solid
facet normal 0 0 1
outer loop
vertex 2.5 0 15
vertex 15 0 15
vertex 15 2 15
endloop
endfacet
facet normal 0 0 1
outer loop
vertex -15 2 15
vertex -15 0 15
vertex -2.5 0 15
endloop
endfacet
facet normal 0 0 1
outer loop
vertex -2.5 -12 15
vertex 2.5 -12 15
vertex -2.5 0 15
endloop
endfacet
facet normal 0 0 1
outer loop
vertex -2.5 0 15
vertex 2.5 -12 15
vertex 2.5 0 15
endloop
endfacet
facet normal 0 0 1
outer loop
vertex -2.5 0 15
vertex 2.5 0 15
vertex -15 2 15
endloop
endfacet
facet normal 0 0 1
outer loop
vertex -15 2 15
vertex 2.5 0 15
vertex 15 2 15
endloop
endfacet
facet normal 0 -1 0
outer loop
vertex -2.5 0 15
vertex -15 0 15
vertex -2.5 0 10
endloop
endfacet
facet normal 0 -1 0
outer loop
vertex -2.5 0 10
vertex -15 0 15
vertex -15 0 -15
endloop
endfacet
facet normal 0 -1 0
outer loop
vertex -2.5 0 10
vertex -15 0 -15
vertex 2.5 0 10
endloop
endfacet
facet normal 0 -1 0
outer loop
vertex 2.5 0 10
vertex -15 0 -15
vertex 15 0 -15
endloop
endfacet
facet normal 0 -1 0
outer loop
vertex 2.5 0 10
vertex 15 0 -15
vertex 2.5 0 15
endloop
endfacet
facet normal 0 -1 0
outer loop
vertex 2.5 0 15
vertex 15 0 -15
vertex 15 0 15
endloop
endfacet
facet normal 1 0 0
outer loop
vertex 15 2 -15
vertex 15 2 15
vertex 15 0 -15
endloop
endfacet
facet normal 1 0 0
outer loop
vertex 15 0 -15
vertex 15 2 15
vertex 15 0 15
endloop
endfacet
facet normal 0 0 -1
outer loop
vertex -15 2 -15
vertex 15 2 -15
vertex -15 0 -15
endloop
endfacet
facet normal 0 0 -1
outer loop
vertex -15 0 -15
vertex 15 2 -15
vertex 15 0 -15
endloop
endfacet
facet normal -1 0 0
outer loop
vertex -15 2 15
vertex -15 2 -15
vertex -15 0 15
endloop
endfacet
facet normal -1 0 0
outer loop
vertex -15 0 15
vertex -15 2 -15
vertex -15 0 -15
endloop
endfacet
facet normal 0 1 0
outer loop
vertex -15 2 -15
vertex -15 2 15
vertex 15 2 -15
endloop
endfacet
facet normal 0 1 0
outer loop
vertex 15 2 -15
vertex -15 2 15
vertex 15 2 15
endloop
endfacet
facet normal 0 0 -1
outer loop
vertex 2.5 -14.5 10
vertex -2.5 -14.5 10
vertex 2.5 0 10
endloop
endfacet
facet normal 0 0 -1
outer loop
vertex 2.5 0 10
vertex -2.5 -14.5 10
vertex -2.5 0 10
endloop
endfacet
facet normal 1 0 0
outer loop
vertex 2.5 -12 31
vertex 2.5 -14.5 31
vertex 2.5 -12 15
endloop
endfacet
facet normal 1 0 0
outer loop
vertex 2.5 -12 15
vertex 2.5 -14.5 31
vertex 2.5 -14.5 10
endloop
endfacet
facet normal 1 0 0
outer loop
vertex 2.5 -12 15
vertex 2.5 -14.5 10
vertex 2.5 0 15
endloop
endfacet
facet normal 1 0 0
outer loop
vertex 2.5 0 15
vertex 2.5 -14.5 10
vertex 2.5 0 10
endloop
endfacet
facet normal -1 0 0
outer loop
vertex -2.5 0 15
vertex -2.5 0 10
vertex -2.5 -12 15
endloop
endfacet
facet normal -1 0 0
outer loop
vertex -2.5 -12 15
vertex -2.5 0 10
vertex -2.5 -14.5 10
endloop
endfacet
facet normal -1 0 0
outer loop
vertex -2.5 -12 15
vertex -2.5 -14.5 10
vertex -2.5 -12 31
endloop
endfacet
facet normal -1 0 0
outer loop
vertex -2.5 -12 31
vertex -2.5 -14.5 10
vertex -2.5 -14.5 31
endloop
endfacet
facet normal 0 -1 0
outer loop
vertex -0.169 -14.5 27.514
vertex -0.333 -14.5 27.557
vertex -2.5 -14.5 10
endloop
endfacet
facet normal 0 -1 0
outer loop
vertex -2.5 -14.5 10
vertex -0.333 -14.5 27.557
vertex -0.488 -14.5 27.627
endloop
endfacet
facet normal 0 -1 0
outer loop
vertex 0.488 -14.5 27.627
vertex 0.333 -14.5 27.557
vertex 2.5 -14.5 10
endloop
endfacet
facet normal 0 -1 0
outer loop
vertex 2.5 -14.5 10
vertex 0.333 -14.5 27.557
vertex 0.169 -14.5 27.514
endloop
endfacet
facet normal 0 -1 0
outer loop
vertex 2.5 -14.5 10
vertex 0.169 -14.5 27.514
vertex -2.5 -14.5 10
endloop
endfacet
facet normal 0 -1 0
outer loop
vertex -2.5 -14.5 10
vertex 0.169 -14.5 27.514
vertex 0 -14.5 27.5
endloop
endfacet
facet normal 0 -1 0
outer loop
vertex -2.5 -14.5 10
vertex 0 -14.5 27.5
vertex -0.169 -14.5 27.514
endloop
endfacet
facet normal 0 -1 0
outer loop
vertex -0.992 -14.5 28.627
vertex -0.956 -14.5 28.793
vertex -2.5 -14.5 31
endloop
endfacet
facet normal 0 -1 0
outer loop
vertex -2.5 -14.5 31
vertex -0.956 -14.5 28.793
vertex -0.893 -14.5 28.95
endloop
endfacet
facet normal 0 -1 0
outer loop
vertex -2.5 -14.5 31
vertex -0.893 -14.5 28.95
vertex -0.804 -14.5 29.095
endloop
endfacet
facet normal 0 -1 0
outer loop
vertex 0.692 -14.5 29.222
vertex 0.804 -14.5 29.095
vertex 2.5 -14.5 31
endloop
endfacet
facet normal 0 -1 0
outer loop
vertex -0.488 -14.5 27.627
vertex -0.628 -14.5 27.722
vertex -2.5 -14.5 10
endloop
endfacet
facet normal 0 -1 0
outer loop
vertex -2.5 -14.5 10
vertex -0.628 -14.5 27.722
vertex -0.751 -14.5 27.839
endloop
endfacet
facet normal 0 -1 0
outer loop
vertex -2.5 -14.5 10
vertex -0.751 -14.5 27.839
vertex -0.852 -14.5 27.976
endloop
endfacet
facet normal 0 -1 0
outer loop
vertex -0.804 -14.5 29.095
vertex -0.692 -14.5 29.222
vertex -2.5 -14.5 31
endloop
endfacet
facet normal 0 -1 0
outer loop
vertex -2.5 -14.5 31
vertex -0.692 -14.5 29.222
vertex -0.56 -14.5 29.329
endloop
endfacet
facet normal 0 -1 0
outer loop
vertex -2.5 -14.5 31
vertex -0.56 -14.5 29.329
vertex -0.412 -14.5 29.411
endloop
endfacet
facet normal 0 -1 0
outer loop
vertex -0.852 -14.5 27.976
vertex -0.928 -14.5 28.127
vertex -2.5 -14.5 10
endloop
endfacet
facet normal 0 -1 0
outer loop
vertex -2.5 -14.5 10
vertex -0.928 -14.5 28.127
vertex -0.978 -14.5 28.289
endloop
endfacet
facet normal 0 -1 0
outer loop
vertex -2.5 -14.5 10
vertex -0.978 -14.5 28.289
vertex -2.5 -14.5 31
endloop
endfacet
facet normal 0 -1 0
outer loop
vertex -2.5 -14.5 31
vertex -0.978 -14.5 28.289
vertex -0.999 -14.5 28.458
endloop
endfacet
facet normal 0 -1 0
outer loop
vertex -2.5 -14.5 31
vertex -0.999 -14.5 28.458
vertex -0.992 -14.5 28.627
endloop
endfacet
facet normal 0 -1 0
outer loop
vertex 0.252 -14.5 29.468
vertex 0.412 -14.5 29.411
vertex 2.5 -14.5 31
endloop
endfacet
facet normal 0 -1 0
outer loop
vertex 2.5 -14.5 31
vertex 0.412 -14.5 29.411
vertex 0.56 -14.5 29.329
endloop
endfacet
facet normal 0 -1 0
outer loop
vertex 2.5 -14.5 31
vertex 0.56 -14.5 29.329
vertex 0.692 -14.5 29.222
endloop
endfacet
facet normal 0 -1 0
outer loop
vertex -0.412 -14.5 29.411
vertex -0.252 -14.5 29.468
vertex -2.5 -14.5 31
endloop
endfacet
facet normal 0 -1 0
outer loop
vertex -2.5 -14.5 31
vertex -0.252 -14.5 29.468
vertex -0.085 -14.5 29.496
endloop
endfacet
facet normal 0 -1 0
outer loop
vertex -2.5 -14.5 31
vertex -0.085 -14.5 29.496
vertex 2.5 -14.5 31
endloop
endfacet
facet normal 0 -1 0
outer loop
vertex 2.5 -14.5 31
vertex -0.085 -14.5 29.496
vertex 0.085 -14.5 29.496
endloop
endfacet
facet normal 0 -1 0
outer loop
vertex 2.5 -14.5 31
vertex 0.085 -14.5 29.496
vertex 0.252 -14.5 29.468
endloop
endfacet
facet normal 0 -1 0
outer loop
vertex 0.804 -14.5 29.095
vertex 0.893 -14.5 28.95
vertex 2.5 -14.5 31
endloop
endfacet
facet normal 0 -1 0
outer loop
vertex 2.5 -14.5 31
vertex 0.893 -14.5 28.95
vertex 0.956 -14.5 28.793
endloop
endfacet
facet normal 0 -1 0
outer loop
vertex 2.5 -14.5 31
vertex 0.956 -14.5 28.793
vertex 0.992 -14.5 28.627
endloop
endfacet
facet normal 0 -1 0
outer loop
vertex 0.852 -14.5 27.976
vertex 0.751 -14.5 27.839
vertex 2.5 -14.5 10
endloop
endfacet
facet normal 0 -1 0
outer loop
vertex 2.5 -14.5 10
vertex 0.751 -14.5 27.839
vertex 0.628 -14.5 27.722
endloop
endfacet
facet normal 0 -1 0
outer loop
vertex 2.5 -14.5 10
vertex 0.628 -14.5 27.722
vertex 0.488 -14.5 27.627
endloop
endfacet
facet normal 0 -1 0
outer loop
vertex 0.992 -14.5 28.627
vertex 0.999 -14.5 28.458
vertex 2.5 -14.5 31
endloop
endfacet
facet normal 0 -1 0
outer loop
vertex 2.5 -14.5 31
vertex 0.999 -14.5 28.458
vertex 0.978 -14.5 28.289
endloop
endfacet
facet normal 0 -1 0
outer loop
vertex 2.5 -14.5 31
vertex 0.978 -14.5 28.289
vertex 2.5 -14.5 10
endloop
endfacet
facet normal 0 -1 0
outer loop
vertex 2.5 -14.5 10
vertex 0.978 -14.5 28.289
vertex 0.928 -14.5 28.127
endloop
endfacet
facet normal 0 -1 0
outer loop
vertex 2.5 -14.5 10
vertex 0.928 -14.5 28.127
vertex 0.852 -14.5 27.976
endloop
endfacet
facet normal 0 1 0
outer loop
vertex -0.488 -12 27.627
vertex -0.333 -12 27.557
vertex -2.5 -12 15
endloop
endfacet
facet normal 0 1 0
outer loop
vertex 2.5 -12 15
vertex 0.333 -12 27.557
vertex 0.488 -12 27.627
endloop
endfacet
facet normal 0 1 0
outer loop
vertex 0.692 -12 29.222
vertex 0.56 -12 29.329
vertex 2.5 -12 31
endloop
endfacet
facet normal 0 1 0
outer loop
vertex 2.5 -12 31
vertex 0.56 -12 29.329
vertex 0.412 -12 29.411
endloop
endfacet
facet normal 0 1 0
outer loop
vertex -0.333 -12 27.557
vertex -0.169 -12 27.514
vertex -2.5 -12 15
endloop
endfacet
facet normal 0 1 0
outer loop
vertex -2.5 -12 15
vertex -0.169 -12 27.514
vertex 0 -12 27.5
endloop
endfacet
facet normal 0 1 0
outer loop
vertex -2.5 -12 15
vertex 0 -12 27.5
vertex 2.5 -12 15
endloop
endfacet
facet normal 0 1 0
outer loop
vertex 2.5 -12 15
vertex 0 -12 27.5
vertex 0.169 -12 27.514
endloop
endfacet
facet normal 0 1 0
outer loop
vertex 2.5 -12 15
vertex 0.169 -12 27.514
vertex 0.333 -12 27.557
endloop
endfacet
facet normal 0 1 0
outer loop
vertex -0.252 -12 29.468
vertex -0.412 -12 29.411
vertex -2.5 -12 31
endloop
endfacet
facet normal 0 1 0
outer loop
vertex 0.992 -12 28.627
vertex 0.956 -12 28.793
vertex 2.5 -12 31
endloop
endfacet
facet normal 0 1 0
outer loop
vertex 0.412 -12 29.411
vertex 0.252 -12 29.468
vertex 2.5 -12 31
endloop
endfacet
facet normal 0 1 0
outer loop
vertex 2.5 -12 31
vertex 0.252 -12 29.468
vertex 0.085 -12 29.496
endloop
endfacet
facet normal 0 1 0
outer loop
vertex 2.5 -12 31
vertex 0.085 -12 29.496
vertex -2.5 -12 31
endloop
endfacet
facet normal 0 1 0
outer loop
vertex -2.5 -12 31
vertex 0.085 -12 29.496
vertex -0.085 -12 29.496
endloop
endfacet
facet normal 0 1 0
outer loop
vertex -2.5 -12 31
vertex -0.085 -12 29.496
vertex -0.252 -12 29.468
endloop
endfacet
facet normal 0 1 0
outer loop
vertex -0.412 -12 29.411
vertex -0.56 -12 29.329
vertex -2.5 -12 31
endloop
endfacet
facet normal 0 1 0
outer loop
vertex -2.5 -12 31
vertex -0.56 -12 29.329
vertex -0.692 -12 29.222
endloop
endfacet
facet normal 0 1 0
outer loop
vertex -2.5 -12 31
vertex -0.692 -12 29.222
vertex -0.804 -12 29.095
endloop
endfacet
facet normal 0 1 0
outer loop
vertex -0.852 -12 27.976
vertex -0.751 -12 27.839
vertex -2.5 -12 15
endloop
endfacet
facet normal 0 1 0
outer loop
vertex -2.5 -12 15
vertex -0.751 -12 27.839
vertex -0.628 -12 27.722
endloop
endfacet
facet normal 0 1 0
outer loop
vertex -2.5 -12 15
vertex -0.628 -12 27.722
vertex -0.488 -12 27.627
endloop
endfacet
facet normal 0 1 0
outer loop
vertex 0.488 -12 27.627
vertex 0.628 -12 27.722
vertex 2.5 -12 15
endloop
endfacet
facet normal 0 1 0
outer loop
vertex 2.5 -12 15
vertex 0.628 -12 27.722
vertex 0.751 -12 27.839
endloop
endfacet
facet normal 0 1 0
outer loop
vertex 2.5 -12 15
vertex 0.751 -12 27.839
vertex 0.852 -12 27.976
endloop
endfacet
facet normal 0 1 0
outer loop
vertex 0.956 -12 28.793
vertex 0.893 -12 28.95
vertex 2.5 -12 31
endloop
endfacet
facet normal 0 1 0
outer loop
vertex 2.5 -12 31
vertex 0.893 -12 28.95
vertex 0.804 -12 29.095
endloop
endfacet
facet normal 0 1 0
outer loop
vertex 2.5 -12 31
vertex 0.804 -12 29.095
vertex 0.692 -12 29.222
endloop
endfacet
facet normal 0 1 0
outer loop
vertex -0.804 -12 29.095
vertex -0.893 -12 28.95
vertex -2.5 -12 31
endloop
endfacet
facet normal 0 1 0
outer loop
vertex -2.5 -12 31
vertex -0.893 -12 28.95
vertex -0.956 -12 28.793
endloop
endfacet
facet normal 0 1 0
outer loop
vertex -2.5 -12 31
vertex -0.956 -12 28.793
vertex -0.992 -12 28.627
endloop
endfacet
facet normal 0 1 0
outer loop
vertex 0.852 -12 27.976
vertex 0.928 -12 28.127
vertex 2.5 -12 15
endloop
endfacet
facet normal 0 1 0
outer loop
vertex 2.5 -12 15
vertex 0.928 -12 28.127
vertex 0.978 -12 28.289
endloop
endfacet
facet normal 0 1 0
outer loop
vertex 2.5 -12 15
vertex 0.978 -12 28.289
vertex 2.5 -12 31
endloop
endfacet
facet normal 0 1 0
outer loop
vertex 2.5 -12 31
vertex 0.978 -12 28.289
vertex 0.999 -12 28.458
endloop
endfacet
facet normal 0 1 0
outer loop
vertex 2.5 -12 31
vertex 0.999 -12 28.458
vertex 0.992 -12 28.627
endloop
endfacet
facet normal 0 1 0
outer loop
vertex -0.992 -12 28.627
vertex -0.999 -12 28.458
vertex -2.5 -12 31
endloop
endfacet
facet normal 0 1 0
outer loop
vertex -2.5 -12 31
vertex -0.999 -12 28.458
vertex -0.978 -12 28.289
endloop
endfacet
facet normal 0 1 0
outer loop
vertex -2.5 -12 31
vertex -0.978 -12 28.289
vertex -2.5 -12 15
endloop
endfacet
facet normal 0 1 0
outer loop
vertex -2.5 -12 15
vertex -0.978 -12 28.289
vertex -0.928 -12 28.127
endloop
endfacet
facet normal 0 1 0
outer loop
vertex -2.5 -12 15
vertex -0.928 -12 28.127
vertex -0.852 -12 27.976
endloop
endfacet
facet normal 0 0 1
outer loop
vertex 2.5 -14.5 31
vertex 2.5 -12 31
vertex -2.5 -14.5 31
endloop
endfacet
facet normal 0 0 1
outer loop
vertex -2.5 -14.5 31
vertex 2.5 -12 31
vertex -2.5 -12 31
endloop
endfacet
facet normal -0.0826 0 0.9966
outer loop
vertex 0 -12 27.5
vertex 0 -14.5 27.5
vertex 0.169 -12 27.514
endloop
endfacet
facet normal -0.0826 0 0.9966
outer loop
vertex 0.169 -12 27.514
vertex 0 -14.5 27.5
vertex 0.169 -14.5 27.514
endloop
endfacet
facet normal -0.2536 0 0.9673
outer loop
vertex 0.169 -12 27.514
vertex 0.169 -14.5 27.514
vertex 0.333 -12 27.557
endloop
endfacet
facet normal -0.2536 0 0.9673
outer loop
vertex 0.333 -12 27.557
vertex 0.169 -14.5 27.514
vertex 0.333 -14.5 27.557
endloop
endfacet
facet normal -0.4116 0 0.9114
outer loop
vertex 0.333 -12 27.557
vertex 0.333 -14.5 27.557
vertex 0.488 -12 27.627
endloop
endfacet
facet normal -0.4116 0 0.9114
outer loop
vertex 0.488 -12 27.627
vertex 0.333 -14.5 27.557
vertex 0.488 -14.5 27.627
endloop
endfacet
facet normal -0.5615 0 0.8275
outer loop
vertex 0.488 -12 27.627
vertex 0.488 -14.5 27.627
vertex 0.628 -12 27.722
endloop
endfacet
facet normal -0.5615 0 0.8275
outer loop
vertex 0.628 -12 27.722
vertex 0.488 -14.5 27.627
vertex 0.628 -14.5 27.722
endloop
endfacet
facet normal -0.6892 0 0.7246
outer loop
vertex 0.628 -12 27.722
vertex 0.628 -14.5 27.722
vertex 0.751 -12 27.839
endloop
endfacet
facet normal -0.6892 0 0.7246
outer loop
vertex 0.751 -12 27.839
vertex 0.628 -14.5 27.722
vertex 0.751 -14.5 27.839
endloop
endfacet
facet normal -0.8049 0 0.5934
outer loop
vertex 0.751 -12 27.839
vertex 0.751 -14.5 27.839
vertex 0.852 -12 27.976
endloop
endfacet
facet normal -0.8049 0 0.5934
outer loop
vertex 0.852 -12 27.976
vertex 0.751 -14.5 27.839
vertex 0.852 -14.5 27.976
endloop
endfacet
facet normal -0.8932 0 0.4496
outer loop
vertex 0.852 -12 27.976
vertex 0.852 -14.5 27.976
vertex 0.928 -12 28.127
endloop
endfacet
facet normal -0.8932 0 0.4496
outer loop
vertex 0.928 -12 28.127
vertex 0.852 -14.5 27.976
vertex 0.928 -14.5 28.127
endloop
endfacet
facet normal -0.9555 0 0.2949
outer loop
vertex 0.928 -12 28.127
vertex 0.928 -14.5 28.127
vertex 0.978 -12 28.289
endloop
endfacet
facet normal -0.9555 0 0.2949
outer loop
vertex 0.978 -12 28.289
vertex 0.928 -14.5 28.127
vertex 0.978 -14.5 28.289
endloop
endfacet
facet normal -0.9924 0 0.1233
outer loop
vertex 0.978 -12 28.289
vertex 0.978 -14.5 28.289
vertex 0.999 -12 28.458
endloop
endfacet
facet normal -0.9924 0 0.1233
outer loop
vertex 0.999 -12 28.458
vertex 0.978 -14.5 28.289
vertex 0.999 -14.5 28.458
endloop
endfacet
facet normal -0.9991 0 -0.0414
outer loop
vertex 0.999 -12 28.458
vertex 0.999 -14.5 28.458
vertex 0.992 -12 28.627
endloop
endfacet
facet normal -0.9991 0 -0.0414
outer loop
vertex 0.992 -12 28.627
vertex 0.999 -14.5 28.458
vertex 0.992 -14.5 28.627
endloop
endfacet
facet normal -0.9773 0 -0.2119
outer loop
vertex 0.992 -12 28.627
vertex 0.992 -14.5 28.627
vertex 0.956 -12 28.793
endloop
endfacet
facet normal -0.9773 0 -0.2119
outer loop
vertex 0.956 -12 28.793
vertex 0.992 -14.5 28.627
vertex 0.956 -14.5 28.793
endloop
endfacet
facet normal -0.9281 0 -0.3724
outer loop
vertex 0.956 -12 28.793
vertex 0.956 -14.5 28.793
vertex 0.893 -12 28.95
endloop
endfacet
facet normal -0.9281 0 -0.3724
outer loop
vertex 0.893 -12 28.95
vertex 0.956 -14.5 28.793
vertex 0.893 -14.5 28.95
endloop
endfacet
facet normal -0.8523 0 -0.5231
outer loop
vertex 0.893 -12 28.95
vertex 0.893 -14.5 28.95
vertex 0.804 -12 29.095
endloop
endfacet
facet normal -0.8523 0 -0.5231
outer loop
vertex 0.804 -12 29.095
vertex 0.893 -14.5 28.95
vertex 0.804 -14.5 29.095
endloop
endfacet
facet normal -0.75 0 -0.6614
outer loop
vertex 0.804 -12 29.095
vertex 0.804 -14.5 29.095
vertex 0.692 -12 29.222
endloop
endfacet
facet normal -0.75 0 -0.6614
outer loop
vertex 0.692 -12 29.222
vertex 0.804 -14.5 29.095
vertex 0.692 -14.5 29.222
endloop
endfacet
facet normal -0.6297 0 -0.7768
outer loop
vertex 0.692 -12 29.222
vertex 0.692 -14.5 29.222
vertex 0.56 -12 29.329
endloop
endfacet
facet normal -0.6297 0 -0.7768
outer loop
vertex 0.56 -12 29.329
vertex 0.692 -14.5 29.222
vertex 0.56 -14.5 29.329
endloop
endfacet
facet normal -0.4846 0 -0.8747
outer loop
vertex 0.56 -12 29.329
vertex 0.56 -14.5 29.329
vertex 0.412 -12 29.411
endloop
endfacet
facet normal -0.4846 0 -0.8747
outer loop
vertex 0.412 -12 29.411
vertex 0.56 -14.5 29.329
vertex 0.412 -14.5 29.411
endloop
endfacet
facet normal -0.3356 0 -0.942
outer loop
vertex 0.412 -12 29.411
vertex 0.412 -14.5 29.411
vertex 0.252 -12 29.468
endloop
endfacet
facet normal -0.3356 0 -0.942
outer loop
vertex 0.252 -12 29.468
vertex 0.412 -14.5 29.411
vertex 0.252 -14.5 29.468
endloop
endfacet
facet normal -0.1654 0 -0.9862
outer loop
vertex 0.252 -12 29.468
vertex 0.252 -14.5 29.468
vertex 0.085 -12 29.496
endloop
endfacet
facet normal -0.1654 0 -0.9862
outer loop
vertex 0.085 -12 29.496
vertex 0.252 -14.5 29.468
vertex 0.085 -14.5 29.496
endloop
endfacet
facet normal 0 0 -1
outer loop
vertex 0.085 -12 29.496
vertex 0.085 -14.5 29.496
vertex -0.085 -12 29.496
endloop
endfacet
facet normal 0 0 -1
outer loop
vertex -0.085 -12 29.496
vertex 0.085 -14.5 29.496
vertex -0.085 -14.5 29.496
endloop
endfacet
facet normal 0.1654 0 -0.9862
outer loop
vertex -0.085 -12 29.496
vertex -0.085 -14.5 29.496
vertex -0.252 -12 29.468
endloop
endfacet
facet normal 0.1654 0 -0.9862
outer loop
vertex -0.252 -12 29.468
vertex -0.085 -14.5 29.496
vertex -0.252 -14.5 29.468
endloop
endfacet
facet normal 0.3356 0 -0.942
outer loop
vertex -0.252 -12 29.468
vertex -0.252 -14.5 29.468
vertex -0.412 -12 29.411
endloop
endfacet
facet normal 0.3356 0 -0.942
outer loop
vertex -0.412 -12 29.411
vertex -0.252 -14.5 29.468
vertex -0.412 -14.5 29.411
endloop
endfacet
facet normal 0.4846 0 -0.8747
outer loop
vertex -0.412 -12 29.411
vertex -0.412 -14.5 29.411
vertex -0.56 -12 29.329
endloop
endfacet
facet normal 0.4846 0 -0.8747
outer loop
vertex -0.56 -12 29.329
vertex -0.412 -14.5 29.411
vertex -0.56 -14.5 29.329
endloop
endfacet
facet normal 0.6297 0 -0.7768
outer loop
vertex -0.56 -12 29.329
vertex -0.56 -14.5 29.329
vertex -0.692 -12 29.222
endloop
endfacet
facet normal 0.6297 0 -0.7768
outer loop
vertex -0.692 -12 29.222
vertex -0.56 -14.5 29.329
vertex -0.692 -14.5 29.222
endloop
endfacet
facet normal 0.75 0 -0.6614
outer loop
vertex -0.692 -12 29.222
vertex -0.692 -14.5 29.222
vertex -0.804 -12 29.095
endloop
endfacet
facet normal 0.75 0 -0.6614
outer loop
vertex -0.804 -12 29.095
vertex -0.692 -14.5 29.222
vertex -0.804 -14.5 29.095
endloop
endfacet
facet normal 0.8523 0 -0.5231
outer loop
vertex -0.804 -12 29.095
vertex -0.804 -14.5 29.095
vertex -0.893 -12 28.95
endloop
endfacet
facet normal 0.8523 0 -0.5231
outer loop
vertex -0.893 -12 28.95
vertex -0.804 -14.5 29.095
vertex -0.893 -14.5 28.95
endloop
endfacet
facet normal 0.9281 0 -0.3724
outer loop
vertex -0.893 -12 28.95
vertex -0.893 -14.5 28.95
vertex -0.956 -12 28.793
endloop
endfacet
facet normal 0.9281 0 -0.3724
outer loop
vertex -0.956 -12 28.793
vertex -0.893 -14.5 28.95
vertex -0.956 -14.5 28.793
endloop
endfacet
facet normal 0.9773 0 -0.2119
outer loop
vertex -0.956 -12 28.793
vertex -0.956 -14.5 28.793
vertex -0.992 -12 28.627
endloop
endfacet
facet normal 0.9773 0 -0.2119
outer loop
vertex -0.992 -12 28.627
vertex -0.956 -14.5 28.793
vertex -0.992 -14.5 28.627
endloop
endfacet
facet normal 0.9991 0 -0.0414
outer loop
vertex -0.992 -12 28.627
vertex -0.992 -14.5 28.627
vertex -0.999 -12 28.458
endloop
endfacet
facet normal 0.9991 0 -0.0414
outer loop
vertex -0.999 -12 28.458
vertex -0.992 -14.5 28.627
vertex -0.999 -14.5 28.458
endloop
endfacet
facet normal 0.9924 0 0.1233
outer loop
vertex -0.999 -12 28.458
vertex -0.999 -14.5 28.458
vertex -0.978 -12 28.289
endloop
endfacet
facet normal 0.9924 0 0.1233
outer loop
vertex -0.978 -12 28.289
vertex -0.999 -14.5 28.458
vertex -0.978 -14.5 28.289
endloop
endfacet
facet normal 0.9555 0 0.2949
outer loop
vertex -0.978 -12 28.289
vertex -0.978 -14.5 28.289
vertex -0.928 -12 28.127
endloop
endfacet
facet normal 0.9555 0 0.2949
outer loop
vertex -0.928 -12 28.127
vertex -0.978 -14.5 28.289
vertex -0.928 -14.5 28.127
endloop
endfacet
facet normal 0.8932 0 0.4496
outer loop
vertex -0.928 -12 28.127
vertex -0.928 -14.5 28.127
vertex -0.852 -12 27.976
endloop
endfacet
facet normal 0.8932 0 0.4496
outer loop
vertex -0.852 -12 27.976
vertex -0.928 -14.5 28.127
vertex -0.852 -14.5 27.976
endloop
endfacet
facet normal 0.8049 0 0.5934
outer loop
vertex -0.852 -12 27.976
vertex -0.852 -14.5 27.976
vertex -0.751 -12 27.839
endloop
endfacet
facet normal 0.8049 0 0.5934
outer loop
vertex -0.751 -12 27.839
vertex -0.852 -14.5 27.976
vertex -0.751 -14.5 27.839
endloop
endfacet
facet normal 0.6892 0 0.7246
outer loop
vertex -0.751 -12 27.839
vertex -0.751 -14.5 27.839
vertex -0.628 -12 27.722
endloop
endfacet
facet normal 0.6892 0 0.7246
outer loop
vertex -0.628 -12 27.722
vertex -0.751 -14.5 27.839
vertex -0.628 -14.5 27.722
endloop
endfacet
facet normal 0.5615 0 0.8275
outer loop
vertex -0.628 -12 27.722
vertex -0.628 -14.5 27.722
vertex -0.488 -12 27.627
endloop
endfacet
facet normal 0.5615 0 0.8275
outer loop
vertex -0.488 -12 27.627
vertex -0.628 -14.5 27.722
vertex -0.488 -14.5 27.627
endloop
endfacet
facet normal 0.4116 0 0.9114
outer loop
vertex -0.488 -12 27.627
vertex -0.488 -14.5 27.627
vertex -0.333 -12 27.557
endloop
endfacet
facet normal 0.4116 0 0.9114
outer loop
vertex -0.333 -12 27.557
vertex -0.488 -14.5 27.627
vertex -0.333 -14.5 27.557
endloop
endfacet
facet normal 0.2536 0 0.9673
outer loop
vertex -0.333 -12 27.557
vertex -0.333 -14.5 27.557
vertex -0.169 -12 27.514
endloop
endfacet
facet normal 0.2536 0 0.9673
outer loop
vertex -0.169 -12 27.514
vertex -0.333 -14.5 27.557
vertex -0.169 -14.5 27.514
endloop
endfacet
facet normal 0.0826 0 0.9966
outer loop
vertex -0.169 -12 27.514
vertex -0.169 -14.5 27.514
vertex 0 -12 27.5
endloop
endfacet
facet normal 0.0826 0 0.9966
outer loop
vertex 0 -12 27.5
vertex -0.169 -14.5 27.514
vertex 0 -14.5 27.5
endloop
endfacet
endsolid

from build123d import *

# Parameters (mm, degrees)
SKETCH1_W           = 30
SKETCH1_H           = 30
BOSS_EXTRUDE1_DEPTH = 2
BOSS_EXTRUDE2_DEPTH = 14.5
SKETCH3_W           = 5
SKETCH3_H           = 2.5
BOSS_EXTRUDE3_DEPTH = 16
SKETCH4_R           = 1
CUT_EXTRUDE1_DEPTH  = 5


with BuildPart() as part:
    # Sketch1 → Boss-Extrude1 (new body)
    with BuildSketch(Plane(origin=(0, 0, 0), x_dir=(1, 0, 0), z_dir=(0, 1, 0))):
        Rectangle(SKETCH1_W, SKETCH1_H)
    extrude(amount=BOSS_EXTRUDE1_DEPTH)

    # Sketch2 → Boss-Extrude2 (add)
    with BuildSketch(Plane.XZ):
        Polygon((2.5, 15), (0, 15), (-2.5, 15), (-2.5, 10), (2.5, 10), align=None)
    extrude(amount=BOSS_EXTRUDE2_DEPTH)

    # Sketch3 → Boss-Extrude3 (add)
    with BuildSketch(Plane.XY.offset(15)):
        with Locations((0, -13.25)):
            Rectangle(SKETCH3_W, SKETCH3_H)
    extrude(amount=BOSS_EXTRUDE3_DEPTH)

    # Sketch4 → Cut-Extrude1 (cut)
    with BuildSketch(Plane(origin=(0, -14.5, 0), x_dir=(-1, 0, 0), z_dir=(0, -1, 0))):
        with Locations((0, -28.5)):
            Circle(SKETCH4_R)
    extrude(amount=-CUT_EXTRUDE1_DEPTH, mode=Mode.SUBTRACT)


solid = part.part
